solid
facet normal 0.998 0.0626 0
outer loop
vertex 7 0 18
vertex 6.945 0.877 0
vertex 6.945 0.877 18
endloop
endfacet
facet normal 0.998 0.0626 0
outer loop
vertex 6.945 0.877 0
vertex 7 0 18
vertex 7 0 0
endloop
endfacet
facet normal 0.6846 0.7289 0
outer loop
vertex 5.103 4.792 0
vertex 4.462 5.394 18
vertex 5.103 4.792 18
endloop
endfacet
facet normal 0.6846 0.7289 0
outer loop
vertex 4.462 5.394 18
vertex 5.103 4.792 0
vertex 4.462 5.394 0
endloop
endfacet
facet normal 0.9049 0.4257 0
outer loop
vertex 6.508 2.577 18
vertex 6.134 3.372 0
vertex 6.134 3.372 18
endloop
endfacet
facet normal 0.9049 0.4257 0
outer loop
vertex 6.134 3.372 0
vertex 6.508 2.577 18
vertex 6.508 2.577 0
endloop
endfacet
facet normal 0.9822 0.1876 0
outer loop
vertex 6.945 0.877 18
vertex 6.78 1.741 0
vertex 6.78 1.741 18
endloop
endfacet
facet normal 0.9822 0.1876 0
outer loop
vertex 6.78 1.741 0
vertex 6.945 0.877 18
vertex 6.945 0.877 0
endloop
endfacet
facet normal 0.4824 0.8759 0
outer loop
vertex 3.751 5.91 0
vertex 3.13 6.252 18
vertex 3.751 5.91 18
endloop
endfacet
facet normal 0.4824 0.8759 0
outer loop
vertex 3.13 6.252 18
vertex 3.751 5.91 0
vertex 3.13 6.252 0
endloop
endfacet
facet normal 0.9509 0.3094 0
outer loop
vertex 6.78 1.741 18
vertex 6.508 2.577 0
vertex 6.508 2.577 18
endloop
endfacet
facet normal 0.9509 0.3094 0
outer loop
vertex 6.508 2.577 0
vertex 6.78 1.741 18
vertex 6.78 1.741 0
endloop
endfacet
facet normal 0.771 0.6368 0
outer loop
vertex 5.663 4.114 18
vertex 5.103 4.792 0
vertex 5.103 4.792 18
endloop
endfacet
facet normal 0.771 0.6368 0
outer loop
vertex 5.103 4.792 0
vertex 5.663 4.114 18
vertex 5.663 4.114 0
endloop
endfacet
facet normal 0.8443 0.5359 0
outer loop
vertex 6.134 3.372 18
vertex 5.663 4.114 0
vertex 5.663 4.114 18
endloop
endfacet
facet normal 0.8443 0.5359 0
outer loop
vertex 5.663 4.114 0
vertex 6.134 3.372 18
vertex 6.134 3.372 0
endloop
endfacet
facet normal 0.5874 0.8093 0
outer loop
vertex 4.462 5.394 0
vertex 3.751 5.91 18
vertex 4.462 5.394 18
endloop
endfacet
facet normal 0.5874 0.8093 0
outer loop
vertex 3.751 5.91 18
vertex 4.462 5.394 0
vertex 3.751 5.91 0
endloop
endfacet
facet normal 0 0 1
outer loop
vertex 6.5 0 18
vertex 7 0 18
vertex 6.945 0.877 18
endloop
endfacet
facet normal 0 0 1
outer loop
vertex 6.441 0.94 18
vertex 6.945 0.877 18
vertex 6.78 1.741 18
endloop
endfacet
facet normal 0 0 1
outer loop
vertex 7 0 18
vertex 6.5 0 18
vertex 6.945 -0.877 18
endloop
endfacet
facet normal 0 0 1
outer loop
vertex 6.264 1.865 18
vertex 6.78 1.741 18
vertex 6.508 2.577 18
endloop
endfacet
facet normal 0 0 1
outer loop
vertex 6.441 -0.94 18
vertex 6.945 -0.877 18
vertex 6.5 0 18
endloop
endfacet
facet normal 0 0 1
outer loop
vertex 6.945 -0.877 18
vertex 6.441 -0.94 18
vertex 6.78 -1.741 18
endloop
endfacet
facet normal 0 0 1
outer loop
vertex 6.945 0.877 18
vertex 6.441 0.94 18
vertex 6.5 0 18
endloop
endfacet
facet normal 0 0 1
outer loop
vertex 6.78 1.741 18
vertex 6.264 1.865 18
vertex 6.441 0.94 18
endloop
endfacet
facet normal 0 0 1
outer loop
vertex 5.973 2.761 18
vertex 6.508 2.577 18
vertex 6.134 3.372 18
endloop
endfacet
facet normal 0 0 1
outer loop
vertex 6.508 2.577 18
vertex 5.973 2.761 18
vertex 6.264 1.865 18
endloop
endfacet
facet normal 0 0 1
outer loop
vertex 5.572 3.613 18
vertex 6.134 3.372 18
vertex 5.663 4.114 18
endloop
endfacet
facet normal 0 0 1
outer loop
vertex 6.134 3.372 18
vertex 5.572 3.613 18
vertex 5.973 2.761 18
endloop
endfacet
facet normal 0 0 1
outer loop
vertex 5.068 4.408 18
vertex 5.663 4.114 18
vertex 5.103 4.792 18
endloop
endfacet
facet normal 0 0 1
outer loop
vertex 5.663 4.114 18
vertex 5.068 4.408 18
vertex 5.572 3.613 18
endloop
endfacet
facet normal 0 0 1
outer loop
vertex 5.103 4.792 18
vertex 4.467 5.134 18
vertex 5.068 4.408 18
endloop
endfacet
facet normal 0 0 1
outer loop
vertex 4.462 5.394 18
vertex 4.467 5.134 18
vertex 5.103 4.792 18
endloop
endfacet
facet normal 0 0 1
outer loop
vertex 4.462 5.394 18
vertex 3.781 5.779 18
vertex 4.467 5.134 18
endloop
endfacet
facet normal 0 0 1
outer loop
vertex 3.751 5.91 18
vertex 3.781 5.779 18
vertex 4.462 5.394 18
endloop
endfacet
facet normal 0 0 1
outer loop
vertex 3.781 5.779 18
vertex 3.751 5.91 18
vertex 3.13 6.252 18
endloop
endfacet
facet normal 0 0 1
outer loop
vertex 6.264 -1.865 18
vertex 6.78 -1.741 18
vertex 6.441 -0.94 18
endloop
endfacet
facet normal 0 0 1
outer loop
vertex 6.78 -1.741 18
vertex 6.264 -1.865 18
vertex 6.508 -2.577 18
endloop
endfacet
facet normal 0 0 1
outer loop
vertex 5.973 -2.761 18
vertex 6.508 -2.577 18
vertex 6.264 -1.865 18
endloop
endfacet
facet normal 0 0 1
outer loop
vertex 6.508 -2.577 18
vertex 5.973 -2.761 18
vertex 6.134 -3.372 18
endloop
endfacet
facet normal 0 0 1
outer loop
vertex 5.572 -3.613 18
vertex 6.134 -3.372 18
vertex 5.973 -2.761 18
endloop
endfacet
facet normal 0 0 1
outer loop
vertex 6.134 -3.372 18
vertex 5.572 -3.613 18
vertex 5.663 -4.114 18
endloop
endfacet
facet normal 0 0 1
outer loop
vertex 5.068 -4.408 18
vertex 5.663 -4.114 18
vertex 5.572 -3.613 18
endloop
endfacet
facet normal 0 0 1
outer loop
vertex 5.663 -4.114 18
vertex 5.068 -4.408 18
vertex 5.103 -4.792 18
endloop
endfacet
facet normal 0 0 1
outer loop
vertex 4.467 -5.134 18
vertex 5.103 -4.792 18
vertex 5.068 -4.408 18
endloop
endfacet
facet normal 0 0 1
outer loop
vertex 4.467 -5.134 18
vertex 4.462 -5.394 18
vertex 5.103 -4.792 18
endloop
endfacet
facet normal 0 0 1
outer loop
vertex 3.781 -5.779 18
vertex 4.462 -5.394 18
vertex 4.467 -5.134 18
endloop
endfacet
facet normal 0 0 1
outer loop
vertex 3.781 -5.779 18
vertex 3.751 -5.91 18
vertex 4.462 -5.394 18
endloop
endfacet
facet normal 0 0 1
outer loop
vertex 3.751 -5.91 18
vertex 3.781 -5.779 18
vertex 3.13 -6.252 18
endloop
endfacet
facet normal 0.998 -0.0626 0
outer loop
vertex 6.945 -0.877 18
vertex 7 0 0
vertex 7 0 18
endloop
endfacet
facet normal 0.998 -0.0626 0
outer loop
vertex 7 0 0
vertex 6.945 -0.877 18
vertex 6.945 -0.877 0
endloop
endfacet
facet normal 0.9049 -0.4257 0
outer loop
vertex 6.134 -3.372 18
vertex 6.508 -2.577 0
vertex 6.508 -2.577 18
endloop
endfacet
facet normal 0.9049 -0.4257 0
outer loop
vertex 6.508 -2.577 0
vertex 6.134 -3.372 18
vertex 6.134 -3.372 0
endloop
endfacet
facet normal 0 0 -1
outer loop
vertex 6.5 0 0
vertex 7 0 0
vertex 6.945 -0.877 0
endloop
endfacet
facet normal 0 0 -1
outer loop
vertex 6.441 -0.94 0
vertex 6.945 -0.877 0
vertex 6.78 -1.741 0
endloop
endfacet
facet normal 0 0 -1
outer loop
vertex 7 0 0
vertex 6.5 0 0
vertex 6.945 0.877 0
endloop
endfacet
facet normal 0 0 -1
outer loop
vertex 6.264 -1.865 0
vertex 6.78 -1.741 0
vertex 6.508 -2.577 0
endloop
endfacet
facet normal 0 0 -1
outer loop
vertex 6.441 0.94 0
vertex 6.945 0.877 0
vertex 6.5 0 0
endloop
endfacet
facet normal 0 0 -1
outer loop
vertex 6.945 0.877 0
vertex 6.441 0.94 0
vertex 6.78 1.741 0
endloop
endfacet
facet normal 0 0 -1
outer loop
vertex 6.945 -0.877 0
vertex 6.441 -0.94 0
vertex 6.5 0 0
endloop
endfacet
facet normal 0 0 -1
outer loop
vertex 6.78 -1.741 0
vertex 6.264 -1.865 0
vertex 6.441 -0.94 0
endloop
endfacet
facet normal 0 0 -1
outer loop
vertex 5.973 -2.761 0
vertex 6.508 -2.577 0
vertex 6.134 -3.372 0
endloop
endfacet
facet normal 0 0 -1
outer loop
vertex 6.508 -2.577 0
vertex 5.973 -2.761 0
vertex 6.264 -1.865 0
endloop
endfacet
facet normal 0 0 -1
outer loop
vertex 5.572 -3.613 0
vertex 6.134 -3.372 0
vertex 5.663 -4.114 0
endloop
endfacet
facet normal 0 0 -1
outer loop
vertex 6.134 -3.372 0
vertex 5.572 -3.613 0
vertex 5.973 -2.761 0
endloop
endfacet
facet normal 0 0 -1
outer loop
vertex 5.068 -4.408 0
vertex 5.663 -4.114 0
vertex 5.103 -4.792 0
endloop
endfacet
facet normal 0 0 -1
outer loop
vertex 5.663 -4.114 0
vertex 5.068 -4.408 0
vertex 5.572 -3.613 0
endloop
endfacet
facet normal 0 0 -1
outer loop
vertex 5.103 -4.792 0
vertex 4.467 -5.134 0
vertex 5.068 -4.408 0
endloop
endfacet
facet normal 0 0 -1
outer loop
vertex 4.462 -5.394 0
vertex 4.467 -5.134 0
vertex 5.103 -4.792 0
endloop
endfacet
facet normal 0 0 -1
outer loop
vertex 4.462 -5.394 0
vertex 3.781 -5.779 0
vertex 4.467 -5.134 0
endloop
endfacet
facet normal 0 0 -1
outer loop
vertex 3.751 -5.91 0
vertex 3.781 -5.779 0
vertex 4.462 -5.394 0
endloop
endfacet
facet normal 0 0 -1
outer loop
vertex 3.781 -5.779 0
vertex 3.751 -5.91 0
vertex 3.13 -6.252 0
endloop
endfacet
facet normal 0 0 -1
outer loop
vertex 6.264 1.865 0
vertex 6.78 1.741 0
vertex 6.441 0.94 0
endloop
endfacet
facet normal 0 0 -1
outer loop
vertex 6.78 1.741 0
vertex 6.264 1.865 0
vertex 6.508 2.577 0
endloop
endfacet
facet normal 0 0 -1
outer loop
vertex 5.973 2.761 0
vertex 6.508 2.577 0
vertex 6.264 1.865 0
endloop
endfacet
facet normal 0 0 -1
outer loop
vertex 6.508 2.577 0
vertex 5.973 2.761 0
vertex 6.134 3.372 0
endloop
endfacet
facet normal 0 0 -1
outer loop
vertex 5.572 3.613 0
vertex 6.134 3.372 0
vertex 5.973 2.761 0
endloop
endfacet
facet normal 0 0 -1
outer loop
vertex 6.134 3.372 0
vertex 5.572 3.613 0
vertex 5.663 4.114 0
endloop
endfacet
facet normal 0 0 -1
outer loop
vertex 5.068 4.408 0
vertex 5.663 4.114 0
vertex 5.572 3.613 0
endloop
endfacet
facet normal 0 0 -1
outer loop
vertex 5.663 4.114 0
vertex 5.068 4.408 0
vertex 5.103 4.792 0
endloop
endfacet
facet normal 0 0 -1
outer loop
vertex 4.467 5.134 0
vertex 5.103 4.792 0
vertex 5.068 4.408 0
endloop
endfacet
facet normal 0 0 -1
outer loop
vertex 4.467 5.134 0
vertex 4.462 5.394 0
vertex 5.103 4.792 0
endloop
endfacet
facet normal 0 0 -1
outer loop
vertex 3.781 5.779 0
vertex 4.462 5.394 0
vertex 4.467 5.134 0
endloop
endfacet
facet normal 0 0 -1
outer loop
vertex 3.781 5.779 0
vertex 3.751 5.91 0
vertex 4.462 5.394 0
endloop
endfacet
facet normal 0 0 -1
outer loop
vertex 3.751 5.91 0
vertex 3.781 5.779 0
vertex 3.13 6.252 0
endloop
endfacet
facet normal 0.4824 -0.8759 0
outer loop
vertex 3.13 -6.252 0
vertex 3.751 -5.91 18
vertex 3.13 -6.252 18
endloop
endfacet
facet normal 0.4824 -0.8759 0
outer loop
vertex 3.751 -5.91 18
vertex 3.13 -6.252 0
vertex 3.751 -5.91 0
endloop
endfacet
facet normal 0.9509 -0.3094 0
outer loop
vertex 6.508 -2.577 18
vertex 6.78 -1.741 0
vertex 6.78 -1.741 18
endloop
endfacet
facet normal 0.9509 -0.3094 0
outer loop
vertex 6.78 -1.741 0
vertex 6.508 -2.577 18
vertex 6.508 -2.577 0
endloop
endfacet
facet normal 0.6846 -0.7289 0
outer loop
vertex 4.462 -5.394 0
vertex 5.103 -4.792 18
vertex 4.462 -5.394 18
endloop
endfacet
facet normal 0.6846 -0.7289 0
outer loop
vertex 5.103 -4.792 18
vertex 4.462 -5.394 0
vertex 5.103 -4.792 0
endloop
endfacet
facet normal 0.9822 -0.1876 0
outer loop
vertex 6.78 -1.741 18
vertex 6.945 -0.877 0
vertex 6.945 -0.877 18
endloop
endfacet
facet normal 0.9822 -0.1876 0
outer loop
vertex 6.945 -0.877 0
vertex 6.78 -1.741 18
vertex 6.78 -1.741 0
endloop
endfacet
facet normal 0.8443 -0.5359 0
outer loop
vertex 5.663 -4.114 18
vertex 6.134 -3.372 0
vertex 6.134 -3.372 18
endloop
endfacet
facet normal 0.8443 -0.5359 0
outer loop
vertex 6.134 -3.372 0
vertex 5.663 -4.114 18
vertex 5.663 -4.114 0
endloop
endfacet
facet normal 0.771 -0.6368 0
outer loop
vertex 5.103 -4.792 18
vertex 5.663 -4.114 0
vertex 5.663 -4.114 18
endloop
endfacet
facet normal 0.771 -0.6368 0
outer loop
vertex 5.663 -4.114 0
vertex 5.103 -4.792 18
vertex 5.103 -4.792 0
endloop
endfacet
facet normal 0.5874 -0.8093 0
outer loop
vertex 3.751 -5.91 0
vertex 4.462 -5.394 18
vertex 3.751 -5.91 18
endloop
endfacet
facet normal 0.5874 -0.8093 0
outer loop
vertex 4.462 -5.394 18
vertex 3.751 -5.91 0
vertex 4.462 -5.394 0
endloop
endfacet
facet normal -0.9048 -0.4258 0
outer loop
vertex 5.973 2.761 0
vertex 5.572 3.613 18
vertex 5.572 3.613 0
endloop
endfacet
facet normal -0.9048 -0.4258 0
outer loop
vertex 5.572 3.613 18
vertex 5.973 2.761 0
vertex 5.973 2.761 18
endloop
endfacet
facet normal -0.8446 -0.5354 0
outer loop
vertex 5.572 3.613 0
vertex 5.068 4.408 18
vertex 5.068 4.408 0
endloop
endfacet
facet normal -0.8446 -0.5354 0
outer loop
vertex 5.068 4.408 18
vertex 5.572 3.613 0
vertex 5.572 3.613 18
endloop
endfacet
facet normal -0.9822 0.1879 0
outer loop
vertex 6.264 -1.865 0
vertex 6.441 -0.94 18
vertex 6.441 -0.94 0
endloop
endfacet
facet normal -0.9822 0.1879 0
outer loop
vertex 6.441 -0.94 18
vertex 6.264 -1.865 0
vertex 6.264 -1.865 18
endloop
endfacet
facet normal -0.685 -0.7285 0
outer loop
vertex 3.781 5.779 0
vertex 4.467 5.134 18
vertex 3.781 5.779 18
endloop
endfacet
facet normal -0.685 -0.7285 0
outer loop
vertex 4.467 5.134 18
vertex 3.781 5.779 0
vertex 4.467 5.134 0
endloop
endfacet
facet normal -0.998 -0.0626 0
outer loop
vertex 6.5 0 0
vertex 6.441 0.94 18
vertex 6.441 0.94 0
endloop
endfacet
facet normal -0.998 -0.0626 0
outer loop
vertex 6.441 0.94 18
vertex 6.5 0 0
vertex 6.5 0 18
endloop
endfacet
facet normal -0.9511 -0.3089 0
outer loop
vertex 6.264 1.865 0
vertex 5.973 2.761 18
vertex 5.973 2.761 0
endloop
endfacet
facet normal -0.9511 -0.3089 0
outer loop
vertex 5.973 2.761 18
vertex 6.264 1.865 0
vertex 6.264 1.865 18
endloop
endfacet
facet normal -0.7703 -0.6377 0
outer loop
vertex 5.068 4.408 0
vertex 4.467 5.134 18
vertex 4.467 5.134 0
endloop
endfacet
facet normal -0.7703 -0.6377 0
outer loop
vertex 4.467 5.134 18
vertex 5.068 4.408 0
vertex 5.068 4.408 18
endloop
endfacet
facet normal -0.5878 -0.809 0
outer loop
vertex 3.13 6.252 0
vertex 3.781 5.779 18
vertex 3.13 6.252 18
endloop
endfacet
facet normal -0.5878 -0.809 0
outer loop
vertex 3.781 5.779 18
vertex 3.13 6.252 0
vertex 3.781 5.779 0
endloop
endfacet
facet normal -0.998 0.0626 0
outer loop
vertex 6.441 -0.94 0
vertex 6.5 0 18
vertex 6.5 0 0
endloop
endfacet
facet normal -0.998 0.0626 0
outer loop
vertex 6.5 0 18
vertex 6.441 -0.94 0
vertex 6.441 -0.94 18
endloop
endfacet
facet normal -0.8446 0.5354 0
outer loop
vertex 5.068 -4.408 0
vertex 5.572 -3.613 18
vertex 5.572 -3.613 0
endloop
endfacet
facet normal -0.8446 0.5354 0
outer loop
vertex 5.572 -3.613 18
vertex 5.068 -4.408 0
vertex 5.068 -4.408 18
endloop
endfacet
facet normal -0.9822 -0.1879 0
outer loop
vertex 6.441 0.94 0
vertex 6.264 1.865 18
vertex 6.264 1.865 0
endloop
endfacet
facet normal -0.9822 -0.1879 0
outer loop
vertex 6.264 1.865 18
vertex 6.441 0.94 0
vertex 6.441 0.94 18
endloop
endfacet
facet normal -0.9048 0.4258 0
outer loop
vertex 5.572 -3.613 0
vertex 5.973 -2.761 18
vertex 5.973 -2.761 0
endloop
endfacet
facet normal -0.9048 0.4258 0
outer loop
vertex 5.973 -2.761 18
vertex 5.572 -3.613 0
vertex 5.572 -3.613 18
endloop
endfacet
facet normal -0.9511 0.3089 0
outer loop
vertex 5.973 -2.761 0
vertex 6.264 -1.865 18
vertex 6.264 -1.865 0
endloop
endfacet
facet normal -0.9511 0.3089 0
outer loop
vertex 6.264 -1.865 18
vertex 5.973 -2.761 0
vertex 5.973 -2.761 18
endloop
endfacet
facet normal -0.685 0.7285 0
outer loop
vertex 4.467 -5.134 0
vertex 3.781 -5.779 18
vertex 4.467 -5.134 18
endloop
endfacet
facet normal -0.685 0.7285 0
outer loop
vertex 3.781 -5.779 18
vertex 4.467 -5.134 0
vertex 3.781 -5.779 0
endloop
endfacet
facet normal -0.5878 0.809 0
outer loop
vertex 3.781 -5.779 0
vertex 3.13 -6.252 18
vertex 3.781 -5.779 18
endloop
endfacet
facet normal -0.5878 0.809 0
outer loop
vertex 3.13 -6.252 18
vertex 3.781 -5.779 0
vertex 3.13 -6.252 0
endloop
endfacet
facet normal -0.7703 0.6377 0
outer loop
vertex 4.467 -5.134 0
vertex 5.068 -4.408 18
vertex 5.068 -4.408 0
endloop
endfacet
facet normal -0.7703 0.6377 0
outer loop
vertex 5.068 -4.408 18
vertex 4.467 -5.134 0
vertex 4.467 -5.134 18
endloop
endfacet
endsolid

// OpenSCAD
$fn = 50;


difference() {
	union() {
		cylinder(h = 18, r = 7.0000000000);
		translate(v = [-4.0000000000, 0, 0]) {
			cylinder(h = 18, r = 7.0000000000);
		}
	}
	union() {
		cylinder(h = 18, r = 3.2500000000);
		cylinder(h = 18, r = 1.8000000000);
		cylinder(h = 18, r = 1.8000000000);
		cylinder(h = 18, r = 1.8000000000);
		translate(v = [-8.5000000000, 0, 0]) {
			hull() {
				translate(v = [-3.7500000000, 0.0000000000, 0]) {
					cylinder(h = 18, r = 7.5000000000);
				}
				translate(v = [3.7500000000, 0.0000000000, 0]) {
					cylinder(h = 18, r = 7.5000000000);
				}
				translate(v = [-3.7500000000, -0.0000000000, 0]) {
					cylinder(h = 18, r = 7.5000000000);
				}
				translate(v = [3.7500000000, -0.0000000000, 0]) {
					cylinder(h = 18, r = 7.5000000000);
				}
			}
		}
		translate(v = [-1.0000000000, 0, 0.0000000000]) {
			cylinder(h = 18, r = 7.5000000000);
		}
	}
}
